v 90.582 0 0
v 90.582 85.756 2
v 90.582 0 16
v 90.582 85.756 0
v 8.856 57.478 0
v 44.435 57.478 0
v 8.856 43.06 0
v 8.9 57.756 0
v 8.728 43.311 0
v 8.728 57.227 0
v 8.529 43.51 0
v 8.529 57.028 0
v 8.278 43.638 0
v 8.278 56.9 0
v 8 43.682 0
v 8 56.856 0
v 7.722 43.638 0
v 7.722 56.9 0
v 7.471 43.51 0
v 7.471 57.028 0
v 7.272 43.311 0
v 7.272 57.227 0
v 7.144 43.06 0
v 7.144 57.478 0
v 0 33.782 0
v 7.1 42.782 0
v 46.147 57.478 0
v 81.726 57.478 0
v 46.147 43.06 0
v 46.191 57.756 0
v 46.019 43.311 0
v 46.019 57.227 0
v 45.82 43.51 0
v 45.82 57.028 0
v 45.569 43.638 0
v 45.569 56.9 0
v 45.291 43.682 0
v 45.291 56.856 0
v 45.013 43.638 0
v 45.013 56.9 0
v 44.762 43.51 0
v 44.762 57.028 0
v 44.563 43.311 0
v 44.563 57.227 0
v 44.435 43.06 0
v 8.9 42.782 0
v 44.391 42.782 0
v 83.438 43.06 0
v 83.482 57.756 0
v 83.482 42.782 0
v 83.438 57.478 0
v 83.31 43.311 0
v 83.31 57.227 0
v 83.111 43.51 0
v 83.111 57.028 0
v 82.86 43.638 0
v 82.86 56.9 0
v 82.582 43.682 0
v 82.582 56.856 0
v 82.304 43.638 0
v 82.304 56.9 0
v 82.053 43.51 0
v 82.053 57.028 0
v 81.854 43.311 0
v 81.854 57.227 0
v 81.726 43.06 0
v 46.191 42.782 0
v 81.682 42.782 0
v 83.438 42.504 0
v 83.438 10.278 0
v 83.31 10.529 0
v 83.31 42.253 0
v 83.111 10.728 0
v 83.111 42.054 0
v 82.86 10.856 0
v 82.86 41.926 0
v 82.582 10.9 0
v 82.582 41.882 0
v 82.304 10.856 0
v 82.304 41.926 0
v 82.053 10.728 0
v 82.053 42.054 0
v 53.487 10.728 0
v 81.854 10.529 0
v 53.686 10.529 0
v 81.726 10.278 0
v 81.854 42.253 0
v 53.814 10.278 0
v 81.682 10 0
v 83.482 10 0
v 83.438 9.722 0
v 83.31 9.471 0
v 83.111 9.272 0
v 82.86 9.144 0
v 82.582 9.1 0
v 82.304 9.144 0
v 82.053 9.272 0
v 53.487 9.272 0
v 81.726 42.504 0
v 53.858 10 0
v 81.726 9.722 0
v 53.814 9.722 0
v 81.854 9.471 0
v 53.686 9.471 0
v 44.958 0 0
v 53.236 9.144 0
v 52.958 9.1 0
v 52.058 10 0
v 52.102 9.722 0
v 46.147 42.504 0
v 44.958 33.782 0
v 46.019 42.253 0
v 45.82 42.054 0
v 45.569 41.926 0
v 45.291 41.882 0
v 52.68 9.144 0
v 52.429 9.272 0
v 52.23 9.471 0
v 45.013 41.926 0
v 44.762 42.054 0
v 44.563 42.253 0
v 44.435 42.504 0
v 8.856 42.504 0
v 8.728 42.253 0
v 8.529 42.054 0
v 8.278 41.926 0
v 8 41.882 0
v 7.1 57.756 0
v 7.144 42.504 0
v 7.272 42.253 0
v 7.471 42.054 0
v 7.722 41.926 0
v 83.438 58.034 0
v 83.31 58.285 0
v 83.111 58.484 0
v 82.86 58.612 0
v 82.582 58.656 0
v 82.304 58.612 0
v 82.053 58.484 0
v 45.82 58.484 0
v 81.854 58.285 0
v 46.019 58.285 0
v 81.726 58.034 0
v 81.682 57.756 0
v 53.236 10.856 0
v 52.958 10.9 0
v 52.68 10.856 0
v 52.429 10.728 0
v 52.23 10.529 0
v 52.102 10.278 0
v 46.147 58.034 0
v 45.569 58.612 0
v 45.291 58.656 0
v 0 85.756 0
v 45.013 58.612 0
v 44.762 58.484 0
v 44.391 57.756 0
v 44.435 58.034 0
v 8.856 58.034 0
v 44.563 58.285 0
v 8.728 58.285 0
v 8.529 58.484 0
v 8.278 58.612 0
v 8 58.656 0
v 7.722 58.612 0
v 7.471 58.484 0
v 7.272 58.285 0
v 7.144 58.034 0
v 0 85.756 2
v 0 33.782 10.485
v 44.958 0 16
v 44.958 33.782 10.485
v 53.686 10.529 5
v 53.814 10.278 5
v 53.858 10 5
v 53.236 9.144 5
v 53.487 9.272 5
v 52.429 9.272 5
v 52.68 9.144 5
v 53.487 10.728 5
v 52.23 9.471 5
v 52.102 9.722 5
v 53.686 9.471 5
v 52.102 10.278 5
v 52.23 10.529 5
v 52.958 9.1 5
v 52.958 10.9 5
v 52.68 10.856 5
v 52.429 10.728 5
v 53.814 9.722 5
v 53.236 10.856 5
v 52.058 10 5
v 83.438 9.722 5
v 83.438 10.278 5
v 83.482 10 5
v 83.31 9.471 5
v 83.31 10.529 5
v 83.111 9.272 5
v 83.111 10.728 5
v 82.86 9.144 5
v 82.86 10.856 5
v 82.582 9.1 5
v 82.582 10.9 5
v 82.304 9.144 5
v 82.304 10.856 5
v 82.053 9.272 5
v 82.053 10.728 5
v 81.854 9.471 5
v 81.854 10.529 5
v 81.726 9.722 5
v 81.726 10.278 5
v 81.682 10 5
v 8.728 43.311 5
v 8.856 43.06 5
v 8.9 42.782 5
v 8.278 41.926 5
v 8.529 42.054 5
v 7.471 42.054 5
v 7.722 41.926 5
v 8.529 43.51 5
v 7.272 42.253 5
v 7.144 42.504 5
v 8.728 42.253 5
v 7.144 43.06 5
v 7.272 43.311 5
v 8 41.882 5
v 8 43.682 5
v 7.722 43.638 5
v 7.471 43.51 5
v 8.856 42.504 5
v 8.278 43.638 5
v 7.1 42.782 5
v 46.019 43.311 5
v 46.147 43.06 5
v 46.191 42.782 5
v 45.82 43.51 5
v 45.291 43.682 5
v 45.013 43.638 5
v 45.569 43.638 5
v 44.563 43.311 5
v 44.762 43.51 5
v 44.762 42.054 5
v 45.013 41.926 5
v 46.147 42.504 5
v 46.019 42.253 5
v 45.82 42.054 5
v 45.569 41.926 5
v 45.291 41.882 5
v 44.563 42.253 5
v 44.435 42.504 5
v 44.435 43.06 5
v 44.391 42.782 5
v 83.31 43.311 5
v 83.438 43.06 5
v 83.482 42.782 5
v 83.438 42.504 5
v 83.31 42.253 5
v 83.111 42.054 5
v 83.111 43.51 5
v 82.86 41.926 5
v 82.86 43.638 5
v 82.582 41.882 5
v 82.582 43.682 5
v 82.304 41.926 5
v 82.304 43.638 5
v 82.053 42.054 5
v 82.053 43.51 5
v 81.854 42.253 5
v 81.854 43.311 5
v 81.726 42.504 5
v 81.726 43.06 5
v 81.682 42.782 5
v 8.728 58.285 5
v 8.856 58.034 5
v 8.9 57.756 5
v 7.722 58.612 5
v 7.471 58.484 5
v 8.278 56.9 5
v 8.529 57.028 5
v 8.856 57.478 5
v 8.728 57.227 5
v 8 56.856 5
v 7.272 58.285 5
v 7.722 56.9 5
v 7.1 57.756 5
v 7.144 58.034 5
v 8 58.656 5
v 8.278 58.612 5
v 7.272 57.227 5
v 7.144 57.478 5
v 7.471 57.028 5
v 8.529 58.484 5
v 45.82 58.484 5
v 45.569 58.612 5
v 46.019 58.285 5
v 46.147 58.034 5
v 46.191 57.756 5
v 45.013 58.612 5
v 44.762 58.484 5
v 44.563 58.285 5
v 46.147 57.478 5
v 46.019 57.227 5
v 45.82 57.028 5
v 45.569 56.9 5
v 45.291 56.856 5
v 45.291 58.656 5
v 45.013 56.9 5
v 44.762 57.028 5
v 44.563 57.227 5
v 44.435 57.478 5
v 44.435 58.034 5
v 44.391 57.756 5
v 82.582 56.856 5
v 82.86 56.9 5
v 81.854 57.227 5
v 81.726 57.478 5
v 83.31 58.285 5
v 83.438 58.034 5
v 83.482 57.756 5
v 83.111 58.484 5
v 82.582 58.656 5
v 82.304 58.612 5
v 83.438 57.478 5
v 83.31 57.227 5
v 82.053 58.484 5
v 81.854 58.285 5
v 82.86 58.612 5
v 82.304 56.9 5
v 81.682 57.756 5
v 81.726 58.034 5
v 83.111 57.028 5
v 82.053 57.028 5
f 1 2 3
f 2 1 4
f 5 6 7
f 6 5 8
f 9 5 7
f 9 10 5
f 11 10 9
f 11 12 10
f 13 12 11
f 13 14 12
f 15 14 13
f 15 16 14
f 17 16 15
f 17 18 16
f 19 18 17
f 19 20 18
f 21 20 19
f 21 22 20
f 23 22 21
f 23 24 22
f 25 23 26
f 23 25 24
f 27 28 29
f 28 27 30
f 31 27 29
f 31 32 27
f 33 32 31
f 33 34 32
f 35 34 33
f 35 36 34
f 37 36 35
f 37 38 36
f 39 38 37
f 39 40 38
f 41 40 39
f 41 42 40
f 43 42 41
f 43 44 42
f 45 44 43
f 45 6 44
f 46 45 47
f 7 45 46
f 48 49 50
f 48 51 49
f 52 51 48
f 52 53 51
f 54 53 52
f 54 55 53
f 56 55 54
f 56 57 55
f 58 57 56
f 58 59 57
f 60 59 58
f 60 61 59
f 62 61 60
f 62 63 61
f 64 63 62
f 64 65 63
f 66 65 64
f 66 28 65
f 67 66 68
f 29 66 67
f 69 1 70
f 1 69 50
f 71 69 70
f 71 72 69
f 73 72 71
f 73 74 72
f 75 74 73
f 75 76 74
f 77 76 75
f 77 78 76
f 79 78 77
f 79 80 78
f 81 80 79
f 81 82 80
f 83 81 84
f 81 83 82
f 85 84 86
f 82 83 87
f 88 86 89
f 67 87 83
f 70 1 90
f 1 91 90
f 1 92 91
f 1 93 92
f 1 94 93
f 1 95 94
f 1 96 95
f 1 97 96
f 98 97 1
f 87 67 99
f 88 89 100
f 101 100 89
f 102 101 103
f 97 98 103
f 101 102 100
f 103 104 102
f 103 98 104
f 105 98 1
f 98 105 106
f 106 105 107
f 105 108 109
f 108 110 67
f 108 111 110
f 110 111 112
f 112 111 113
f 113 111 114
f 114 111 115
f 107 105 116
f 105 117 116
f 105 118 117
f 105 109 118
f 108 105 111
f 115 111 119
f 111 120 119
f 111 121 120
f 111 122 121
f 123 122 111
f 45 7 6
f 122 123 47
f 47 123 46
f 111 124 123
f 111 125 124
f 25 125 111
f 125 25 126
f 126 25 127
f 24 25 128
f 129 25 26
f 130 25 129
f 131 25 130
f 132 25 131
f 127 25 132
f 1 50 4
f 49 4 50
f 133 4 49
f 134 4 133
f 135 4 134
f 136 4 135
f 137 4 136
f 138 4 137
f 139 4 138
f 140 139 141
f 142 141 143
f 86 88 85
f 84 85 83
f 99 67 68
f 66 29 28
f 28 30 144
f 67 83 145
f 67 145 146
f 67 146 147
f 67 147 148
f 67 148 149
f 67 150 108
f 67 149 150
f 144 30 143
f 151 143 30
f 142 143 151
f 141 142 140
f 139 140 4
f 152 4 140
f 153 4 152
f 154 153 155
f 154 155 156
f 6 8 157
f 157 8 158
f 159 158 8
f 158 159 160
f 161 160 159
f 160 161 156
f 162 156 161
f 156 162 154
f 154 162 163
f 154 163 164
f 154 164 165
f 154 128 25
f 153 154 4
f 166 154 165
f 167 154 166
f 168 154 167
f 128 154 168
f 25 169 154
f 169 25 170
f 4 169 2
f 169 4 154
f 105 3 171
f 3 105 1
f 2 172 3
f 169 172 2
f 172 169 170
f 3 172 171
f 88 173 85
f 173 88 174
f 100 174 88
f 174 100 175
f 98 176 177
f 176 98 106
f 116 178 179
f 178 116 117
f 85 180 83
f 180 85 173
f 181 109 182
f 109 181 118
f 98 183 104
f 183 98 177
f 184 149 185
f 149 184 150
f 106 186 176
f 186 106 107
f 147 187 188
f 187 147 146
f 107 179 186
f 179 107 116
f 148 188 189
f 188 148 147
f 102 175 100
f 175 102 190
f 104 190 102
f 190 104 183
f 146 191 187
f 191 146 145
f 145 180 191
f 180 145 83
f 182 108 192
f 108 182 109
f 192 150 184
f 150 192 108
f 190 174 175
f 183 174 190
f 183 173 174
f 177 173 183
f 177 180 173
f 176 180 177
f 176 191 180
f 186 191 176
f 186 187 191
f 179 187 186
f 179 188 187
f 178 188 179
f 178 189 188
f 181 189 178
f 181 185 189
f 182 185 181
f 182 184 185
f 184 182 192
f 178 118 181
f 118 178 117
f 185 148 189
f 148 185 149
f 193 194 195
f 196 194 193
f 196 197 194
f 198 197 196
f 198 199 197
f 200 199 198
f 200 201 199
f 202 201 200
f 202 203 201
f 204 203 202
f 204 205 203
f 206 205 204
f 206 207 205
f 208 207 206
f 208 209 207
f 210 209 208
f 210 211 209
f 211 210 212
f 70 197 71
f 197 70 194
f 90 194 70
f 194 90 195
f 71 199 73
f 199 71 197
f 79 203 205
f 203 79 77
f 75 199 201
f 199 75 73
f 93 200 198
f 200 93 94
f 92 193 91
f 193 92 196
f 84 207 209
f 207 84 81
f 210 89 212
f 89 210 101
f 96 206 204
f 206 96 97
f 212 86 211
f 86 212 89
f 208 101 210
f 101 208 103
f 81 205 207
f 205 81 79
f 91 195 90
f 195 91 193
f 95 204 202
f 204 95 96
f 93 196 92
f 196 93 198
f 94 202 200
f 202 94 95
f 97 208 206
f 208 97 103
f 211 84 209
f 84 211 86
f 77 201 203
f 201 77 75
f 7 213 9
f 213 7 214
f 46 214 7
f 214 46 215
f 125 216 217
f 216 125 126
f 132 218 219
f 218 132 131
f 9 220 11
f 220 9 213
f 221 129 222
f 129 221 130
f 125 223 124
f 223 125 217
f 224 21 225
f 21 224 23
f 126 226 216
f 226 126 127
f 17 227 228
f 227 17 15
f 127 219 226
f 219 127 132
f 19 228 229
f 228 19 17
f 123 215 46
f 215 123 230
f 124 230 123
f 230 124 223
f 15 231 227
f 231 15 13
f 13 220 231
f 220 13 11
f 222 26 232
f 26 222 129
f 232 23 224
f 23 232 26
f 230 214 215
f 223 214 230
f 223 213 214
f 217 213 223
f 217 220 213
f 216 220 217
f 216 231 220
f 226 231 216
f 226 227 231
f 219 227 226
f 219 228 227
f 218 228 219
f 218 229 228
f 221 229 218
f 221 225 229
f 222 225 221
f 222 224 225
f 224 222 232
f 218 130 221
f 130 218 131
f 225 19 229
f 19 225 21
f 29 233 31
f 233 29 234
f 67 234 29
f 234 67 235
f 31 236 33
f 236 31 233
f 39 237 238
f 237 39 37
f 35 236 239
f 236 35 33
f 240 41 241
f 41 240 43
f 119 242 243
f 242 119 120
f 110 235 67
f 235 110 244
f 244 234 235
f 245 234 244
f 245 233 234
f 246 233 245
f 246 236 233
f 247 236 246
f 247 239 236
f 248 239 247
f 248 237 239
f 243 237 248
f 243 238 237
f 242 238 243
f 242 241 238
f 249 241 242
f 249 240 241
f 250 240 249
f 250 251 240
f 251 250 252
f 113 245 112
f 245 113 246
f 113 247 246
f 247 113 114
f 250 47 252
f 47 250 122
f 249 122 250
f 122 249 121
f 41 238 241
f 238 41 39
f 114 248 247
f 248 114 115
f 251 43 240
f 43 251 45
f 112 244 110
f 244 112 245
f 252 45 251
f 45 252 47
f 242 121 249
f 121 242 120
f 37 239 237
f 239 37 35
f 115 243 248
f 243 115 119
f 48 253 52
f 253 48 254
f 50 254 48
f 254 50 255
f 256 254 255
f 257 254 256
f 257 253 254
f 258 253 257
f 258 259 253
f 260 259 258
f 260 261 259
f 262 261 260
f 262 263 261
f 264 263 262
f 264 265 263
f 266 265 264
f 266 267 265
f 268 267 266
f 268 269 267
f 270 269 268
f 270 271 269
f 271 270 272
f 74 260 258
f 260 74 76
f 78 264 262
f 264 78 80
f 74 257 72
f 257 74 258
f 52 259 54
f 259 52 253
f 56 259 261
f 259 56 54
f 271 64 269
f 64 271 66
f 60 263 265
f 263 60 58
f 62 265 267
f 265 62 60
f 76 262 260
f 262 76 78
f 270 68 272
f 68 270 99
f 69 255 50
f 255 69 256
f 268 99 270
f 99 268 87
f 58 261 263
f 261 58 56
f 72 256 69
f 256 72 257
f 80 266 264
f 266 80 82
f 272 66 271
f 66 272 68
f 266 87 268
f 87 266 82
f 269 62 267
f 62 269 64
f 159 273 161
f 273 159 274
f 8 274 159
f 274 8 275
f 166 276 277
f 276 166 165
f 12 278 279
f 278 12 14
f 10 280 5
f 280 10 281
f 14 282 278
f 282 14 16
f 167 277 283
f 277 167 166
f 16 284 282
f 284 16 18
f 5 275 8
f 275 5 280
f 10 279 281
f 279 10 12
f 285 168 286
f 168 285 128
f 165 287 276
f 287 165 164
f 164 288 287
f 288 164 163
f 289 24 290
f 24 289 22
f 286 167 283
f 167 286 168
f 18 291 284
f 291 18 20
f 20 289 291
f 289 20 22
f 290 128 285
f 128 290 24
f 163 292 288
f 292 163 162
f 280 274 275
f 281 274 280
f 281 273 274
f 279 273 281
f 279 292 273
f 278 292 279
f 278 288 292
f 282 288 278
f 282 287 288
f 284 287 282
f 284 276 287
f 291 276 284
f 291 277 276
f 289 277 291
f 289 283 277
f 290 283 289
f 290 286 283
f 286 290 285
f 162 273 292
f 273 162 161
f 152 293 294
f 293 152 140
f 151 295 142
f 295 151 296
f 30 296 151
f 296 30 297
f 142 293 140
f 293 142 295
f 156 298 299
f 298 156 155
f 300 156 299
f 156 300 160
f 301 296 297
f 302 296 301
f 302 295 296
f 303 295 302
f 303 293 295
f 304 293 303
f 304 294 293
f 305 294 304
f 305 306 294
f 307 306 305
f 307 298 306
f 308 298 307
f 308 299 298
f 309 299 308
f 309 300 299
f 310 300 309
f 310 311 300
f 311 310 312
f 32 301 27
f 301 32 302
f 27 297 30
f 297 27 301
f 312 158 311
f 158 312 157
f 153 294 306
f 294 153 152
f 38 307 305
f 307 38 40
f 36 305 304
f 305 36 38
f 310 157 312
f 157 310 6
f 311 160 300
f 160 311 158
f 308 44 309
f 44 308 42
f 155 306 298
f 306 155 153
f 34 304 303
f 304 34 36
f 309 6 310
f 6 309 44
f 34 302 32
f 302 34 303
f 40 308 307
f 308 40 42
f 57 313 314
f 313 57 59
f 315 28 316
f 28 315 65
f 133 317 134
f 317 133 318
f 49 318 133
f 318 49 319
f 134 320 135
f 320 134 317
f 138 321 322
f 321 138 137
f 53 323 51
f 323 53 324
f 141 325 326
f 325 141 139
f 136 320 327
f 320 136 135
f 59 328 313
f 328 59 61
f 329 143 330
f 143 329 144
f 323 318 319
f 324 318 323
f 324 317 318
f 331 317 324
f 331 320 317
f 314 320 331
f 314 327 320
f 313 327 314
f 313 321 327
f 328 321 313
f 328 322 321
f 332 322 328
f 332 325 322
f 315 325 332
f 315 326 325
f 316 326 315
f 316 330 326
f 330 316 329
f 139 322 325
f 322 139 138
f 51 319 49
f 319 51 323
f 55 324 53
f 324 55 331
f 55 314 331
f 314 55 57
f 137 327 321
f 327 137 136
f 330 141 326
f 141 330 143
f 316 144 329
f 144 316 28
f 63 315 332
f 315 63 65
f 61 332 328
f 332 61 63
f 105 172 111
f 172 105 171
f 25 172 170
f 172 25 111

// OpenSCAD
// file: ../lib/ssd1306.scad
/*
 * SPDX-FileCopyrightText: 2022-2024 Rafael G. Martins <rafael@rafaelmartins.eng.br>
 * SPDX-License-Identifier: CERN-OHL-S-2.0
 */

ssd1306_pcb_thickness = 1.6;
ssd1306_pcb_base_height = 2;
ssd1306_pcb_base_d = 4;
ssd1306_pcb_base_screw_d = 1.8;
ssd1306_pcb_base_spacing_x = 23.5;
ssd1306_pcb_base_spacing_y = 23.8;
ssd1306_screen_width = 24.5;
ssd1306_screen_height = 13;
ssd1306_screen_distance_x = (ssd1306_pcb_base_spacing_x - ssd1306_screen_width) / 2;
ssd1306_screen_distance_y = 3.5;
ssd1306_pin_distance_y = 0.45;


module ssd1306_add(thickness) {
    translate([-ssd1306_pcb_base_d / 2, -ssd1306_pcb_base_d / 2, 0])
        cube([ssd1306_pcb_base_spacing_x + ssd1306_pcb_base_d,
              ssd1306_pcb_base_spacing_y + ssd1306_pcb_base_d,
              thickness]);

    for(i=[0:1])
        for(j=[0:1])
            translate([i * ssd1306_pcb_base_spacing_x, j * ssd1306_pcb_base_spacing_y, thickness])
                cylinder(ssd1306_pcb_base_height, d=ssd1306_pcb_base_d, $fn=20);
}


module ssd1306_sub(thickness) {
    translate([ssd1306_screen_distance_x, ssd1306_screen_distance_y, 0])
        cube([ssd1306_screen_width, ssd1306_screen_height, thickness]);

    for(i=[0:1])
        for(j=[0:1])
            translate([i * ssd1306_pcb_base_spacing_x, j * ssd1306_pcb_base_spacing_y, thickness])
                cylinder(ssd1306_pcb_base_height, d=ssd1306_pcb_base_screw_d, $fn=20);
}
// file: settings.scad
/*
 * SPDX-FileCopyrightText: 2024 Rafael G. Martins <rafael@rafaelmartins.eng.br>
 * SPDX-License-Identifier: CERN-OHL-S-2.0
 */

include <../lib/ssd1306.scad>

screw_d = 2;
screw_h = 8;
thickness = 2;
gap = 0;

front_screw_padding = 3.5;

pcb_base_d = 5;
pcb_base_screw_d = 1.8;
pcb_screw_padding = 2.54;
pcb_thickness = 1.6;

pcb_gap = 1;
pcb_padding_x = thickness + pcb_gap;
pcb_padding_y = thickness + pcb_gap;

display_pcb_length = 39.624;
display_pcb_width = 33.782;

display_pcb0_x = pcb_padding_x;
display_pcb0_y = pcb_padding_y;

display_length = display_pcb_length + 2 * pcb_padding_x;
display_width = display_pcb_width + pcb_padding_y;

switches_pcb_length = 84.582;
switches_pcb_width = 45.974;

switches_length = switches_pcb_length + 2 * pcb_padding_x;
switches_width = switches_pcb_width + 2 * pcb_padding_y;

switches_pcb_base_distance_x = 39.751;
switches_pcb_base_distance_y = 20.447;

oled_socket_height = 8.5;
oled_pin0_y = 5.334;
oled0_x = (display_length - ssd1306_pcb_base_spacing_x) / 2;
oled0_y = display_pcb0_y + oled_pin0_y + ssd1306_pin_distance_y;

display_pcb_base_distance = 34.544;
display_pcb_base_height = 2.8 + oled_socket_height + ssd1306_pcb_thickness + ssd1306_pcb_base_height;

switches_pcb_base_height = 6 - thickness;

usb_height = 4.4;
usb_width = 8.2;
usb_distance_x = pcb_padding_x + 29.210 - usb_width / 2;
usb_distance_z = thickness + display_pcb_base_height + pcb_thickness - 0.1;

display_height = usb_distance_z + usb_height + 0.8 + thickness;
display_height_in = display_pcb_base_height - switches_pcb_base_height - thickness;

switches_height = display_height - display_pcb_base_height + switches_pcb_base_height;

led0_x = 37.211;
led0_y = 15.24;
led_d = 3.2;

key_dim = 16;
key_distance = 19.304;
key0_x = 13.335 - key_dim / 2;
key0_y = key0_x;

base_screw_d = 1.8;
base_screw_h = 5;
base_screw_padding = 8;
base_screw_padding_bottom = 25;

base_length = switches_length;
base_width = display_width + switches_width - pcb_gap - thickness;
base_height = 16;

back_screw3_padding = 10;
// main file
/*
 * SPDX-FileCopyrightText: 2024 Rafael G. Martins <rafael@rafaelmartins.eng.br>
 * SPDX-License-Identifier: CERN-OHL-S-2.0
 */

// should print upside down

include <settings.scad>

display_width_ = display_width - 2 * (thickness + gap);
switches_width_ = switches_width - 2 * (thickness + gap);


difference() {
    union() {
        cube([base_length, base_width, thickness]);

        translate([0, 0, thickness])
            rotate([90, 0, 90])
            linear_extrude(height=base_length)
                polygon([[0, 0], [base_width, 0], [0, base_height - thickness]]);
    }

    cube([base_length - display_length, display_width_ + 2 * gap + pcb_gap, base_height]);

    translate([base_length - display_length, thickness + gap, 0]) {
        translate([base_screw_padding, base_screw_padding, 0])
            cylinder(h=base_screw_h, d=base_screw_d, $fn=20);
        translate([display_length - base_screw_padding, base_screw_padding, 0])
            cylinder(h=base_screw_h, d=base_screw_d, $fn=20);
    }

    translate([0, display_width_ + thickness + gap, 0]) {
        translate([base_screw_padding, base_screw_padding, 0])
            cylinder(h=base_screw_h, d=base_screw_d, $fn=20);
        translate([switches_length / 2, base_screw_padding, 0])
            cylinder(h=base_screw_h, d=base_screw_d, $fn=20);
        translate([switches_length - base_screw_padding, base_screw_padding, 0])
            cylinder(h=base_screw_h, d=base_screw_d, $fn=20);
        translate([base_screw_padding, switches_width_ - base_screw_padding_bottom, 0])
            cylinder(h=base_screw_h, d=base_screw_d, $fn=20);
        translate([switches_length / 2, switches_width_ - base_screw_padding_bottom, 0])
            cylinder(h=base_screw_h, d=base_screw_d, $fn=20);
        translate([switches_length - base_screw_padding, switches_width_ - base_screw_padding_bottom, 0])
            cylinder(h=base_screw_h, d=base_screw_d, $fn=20);
    }
}
